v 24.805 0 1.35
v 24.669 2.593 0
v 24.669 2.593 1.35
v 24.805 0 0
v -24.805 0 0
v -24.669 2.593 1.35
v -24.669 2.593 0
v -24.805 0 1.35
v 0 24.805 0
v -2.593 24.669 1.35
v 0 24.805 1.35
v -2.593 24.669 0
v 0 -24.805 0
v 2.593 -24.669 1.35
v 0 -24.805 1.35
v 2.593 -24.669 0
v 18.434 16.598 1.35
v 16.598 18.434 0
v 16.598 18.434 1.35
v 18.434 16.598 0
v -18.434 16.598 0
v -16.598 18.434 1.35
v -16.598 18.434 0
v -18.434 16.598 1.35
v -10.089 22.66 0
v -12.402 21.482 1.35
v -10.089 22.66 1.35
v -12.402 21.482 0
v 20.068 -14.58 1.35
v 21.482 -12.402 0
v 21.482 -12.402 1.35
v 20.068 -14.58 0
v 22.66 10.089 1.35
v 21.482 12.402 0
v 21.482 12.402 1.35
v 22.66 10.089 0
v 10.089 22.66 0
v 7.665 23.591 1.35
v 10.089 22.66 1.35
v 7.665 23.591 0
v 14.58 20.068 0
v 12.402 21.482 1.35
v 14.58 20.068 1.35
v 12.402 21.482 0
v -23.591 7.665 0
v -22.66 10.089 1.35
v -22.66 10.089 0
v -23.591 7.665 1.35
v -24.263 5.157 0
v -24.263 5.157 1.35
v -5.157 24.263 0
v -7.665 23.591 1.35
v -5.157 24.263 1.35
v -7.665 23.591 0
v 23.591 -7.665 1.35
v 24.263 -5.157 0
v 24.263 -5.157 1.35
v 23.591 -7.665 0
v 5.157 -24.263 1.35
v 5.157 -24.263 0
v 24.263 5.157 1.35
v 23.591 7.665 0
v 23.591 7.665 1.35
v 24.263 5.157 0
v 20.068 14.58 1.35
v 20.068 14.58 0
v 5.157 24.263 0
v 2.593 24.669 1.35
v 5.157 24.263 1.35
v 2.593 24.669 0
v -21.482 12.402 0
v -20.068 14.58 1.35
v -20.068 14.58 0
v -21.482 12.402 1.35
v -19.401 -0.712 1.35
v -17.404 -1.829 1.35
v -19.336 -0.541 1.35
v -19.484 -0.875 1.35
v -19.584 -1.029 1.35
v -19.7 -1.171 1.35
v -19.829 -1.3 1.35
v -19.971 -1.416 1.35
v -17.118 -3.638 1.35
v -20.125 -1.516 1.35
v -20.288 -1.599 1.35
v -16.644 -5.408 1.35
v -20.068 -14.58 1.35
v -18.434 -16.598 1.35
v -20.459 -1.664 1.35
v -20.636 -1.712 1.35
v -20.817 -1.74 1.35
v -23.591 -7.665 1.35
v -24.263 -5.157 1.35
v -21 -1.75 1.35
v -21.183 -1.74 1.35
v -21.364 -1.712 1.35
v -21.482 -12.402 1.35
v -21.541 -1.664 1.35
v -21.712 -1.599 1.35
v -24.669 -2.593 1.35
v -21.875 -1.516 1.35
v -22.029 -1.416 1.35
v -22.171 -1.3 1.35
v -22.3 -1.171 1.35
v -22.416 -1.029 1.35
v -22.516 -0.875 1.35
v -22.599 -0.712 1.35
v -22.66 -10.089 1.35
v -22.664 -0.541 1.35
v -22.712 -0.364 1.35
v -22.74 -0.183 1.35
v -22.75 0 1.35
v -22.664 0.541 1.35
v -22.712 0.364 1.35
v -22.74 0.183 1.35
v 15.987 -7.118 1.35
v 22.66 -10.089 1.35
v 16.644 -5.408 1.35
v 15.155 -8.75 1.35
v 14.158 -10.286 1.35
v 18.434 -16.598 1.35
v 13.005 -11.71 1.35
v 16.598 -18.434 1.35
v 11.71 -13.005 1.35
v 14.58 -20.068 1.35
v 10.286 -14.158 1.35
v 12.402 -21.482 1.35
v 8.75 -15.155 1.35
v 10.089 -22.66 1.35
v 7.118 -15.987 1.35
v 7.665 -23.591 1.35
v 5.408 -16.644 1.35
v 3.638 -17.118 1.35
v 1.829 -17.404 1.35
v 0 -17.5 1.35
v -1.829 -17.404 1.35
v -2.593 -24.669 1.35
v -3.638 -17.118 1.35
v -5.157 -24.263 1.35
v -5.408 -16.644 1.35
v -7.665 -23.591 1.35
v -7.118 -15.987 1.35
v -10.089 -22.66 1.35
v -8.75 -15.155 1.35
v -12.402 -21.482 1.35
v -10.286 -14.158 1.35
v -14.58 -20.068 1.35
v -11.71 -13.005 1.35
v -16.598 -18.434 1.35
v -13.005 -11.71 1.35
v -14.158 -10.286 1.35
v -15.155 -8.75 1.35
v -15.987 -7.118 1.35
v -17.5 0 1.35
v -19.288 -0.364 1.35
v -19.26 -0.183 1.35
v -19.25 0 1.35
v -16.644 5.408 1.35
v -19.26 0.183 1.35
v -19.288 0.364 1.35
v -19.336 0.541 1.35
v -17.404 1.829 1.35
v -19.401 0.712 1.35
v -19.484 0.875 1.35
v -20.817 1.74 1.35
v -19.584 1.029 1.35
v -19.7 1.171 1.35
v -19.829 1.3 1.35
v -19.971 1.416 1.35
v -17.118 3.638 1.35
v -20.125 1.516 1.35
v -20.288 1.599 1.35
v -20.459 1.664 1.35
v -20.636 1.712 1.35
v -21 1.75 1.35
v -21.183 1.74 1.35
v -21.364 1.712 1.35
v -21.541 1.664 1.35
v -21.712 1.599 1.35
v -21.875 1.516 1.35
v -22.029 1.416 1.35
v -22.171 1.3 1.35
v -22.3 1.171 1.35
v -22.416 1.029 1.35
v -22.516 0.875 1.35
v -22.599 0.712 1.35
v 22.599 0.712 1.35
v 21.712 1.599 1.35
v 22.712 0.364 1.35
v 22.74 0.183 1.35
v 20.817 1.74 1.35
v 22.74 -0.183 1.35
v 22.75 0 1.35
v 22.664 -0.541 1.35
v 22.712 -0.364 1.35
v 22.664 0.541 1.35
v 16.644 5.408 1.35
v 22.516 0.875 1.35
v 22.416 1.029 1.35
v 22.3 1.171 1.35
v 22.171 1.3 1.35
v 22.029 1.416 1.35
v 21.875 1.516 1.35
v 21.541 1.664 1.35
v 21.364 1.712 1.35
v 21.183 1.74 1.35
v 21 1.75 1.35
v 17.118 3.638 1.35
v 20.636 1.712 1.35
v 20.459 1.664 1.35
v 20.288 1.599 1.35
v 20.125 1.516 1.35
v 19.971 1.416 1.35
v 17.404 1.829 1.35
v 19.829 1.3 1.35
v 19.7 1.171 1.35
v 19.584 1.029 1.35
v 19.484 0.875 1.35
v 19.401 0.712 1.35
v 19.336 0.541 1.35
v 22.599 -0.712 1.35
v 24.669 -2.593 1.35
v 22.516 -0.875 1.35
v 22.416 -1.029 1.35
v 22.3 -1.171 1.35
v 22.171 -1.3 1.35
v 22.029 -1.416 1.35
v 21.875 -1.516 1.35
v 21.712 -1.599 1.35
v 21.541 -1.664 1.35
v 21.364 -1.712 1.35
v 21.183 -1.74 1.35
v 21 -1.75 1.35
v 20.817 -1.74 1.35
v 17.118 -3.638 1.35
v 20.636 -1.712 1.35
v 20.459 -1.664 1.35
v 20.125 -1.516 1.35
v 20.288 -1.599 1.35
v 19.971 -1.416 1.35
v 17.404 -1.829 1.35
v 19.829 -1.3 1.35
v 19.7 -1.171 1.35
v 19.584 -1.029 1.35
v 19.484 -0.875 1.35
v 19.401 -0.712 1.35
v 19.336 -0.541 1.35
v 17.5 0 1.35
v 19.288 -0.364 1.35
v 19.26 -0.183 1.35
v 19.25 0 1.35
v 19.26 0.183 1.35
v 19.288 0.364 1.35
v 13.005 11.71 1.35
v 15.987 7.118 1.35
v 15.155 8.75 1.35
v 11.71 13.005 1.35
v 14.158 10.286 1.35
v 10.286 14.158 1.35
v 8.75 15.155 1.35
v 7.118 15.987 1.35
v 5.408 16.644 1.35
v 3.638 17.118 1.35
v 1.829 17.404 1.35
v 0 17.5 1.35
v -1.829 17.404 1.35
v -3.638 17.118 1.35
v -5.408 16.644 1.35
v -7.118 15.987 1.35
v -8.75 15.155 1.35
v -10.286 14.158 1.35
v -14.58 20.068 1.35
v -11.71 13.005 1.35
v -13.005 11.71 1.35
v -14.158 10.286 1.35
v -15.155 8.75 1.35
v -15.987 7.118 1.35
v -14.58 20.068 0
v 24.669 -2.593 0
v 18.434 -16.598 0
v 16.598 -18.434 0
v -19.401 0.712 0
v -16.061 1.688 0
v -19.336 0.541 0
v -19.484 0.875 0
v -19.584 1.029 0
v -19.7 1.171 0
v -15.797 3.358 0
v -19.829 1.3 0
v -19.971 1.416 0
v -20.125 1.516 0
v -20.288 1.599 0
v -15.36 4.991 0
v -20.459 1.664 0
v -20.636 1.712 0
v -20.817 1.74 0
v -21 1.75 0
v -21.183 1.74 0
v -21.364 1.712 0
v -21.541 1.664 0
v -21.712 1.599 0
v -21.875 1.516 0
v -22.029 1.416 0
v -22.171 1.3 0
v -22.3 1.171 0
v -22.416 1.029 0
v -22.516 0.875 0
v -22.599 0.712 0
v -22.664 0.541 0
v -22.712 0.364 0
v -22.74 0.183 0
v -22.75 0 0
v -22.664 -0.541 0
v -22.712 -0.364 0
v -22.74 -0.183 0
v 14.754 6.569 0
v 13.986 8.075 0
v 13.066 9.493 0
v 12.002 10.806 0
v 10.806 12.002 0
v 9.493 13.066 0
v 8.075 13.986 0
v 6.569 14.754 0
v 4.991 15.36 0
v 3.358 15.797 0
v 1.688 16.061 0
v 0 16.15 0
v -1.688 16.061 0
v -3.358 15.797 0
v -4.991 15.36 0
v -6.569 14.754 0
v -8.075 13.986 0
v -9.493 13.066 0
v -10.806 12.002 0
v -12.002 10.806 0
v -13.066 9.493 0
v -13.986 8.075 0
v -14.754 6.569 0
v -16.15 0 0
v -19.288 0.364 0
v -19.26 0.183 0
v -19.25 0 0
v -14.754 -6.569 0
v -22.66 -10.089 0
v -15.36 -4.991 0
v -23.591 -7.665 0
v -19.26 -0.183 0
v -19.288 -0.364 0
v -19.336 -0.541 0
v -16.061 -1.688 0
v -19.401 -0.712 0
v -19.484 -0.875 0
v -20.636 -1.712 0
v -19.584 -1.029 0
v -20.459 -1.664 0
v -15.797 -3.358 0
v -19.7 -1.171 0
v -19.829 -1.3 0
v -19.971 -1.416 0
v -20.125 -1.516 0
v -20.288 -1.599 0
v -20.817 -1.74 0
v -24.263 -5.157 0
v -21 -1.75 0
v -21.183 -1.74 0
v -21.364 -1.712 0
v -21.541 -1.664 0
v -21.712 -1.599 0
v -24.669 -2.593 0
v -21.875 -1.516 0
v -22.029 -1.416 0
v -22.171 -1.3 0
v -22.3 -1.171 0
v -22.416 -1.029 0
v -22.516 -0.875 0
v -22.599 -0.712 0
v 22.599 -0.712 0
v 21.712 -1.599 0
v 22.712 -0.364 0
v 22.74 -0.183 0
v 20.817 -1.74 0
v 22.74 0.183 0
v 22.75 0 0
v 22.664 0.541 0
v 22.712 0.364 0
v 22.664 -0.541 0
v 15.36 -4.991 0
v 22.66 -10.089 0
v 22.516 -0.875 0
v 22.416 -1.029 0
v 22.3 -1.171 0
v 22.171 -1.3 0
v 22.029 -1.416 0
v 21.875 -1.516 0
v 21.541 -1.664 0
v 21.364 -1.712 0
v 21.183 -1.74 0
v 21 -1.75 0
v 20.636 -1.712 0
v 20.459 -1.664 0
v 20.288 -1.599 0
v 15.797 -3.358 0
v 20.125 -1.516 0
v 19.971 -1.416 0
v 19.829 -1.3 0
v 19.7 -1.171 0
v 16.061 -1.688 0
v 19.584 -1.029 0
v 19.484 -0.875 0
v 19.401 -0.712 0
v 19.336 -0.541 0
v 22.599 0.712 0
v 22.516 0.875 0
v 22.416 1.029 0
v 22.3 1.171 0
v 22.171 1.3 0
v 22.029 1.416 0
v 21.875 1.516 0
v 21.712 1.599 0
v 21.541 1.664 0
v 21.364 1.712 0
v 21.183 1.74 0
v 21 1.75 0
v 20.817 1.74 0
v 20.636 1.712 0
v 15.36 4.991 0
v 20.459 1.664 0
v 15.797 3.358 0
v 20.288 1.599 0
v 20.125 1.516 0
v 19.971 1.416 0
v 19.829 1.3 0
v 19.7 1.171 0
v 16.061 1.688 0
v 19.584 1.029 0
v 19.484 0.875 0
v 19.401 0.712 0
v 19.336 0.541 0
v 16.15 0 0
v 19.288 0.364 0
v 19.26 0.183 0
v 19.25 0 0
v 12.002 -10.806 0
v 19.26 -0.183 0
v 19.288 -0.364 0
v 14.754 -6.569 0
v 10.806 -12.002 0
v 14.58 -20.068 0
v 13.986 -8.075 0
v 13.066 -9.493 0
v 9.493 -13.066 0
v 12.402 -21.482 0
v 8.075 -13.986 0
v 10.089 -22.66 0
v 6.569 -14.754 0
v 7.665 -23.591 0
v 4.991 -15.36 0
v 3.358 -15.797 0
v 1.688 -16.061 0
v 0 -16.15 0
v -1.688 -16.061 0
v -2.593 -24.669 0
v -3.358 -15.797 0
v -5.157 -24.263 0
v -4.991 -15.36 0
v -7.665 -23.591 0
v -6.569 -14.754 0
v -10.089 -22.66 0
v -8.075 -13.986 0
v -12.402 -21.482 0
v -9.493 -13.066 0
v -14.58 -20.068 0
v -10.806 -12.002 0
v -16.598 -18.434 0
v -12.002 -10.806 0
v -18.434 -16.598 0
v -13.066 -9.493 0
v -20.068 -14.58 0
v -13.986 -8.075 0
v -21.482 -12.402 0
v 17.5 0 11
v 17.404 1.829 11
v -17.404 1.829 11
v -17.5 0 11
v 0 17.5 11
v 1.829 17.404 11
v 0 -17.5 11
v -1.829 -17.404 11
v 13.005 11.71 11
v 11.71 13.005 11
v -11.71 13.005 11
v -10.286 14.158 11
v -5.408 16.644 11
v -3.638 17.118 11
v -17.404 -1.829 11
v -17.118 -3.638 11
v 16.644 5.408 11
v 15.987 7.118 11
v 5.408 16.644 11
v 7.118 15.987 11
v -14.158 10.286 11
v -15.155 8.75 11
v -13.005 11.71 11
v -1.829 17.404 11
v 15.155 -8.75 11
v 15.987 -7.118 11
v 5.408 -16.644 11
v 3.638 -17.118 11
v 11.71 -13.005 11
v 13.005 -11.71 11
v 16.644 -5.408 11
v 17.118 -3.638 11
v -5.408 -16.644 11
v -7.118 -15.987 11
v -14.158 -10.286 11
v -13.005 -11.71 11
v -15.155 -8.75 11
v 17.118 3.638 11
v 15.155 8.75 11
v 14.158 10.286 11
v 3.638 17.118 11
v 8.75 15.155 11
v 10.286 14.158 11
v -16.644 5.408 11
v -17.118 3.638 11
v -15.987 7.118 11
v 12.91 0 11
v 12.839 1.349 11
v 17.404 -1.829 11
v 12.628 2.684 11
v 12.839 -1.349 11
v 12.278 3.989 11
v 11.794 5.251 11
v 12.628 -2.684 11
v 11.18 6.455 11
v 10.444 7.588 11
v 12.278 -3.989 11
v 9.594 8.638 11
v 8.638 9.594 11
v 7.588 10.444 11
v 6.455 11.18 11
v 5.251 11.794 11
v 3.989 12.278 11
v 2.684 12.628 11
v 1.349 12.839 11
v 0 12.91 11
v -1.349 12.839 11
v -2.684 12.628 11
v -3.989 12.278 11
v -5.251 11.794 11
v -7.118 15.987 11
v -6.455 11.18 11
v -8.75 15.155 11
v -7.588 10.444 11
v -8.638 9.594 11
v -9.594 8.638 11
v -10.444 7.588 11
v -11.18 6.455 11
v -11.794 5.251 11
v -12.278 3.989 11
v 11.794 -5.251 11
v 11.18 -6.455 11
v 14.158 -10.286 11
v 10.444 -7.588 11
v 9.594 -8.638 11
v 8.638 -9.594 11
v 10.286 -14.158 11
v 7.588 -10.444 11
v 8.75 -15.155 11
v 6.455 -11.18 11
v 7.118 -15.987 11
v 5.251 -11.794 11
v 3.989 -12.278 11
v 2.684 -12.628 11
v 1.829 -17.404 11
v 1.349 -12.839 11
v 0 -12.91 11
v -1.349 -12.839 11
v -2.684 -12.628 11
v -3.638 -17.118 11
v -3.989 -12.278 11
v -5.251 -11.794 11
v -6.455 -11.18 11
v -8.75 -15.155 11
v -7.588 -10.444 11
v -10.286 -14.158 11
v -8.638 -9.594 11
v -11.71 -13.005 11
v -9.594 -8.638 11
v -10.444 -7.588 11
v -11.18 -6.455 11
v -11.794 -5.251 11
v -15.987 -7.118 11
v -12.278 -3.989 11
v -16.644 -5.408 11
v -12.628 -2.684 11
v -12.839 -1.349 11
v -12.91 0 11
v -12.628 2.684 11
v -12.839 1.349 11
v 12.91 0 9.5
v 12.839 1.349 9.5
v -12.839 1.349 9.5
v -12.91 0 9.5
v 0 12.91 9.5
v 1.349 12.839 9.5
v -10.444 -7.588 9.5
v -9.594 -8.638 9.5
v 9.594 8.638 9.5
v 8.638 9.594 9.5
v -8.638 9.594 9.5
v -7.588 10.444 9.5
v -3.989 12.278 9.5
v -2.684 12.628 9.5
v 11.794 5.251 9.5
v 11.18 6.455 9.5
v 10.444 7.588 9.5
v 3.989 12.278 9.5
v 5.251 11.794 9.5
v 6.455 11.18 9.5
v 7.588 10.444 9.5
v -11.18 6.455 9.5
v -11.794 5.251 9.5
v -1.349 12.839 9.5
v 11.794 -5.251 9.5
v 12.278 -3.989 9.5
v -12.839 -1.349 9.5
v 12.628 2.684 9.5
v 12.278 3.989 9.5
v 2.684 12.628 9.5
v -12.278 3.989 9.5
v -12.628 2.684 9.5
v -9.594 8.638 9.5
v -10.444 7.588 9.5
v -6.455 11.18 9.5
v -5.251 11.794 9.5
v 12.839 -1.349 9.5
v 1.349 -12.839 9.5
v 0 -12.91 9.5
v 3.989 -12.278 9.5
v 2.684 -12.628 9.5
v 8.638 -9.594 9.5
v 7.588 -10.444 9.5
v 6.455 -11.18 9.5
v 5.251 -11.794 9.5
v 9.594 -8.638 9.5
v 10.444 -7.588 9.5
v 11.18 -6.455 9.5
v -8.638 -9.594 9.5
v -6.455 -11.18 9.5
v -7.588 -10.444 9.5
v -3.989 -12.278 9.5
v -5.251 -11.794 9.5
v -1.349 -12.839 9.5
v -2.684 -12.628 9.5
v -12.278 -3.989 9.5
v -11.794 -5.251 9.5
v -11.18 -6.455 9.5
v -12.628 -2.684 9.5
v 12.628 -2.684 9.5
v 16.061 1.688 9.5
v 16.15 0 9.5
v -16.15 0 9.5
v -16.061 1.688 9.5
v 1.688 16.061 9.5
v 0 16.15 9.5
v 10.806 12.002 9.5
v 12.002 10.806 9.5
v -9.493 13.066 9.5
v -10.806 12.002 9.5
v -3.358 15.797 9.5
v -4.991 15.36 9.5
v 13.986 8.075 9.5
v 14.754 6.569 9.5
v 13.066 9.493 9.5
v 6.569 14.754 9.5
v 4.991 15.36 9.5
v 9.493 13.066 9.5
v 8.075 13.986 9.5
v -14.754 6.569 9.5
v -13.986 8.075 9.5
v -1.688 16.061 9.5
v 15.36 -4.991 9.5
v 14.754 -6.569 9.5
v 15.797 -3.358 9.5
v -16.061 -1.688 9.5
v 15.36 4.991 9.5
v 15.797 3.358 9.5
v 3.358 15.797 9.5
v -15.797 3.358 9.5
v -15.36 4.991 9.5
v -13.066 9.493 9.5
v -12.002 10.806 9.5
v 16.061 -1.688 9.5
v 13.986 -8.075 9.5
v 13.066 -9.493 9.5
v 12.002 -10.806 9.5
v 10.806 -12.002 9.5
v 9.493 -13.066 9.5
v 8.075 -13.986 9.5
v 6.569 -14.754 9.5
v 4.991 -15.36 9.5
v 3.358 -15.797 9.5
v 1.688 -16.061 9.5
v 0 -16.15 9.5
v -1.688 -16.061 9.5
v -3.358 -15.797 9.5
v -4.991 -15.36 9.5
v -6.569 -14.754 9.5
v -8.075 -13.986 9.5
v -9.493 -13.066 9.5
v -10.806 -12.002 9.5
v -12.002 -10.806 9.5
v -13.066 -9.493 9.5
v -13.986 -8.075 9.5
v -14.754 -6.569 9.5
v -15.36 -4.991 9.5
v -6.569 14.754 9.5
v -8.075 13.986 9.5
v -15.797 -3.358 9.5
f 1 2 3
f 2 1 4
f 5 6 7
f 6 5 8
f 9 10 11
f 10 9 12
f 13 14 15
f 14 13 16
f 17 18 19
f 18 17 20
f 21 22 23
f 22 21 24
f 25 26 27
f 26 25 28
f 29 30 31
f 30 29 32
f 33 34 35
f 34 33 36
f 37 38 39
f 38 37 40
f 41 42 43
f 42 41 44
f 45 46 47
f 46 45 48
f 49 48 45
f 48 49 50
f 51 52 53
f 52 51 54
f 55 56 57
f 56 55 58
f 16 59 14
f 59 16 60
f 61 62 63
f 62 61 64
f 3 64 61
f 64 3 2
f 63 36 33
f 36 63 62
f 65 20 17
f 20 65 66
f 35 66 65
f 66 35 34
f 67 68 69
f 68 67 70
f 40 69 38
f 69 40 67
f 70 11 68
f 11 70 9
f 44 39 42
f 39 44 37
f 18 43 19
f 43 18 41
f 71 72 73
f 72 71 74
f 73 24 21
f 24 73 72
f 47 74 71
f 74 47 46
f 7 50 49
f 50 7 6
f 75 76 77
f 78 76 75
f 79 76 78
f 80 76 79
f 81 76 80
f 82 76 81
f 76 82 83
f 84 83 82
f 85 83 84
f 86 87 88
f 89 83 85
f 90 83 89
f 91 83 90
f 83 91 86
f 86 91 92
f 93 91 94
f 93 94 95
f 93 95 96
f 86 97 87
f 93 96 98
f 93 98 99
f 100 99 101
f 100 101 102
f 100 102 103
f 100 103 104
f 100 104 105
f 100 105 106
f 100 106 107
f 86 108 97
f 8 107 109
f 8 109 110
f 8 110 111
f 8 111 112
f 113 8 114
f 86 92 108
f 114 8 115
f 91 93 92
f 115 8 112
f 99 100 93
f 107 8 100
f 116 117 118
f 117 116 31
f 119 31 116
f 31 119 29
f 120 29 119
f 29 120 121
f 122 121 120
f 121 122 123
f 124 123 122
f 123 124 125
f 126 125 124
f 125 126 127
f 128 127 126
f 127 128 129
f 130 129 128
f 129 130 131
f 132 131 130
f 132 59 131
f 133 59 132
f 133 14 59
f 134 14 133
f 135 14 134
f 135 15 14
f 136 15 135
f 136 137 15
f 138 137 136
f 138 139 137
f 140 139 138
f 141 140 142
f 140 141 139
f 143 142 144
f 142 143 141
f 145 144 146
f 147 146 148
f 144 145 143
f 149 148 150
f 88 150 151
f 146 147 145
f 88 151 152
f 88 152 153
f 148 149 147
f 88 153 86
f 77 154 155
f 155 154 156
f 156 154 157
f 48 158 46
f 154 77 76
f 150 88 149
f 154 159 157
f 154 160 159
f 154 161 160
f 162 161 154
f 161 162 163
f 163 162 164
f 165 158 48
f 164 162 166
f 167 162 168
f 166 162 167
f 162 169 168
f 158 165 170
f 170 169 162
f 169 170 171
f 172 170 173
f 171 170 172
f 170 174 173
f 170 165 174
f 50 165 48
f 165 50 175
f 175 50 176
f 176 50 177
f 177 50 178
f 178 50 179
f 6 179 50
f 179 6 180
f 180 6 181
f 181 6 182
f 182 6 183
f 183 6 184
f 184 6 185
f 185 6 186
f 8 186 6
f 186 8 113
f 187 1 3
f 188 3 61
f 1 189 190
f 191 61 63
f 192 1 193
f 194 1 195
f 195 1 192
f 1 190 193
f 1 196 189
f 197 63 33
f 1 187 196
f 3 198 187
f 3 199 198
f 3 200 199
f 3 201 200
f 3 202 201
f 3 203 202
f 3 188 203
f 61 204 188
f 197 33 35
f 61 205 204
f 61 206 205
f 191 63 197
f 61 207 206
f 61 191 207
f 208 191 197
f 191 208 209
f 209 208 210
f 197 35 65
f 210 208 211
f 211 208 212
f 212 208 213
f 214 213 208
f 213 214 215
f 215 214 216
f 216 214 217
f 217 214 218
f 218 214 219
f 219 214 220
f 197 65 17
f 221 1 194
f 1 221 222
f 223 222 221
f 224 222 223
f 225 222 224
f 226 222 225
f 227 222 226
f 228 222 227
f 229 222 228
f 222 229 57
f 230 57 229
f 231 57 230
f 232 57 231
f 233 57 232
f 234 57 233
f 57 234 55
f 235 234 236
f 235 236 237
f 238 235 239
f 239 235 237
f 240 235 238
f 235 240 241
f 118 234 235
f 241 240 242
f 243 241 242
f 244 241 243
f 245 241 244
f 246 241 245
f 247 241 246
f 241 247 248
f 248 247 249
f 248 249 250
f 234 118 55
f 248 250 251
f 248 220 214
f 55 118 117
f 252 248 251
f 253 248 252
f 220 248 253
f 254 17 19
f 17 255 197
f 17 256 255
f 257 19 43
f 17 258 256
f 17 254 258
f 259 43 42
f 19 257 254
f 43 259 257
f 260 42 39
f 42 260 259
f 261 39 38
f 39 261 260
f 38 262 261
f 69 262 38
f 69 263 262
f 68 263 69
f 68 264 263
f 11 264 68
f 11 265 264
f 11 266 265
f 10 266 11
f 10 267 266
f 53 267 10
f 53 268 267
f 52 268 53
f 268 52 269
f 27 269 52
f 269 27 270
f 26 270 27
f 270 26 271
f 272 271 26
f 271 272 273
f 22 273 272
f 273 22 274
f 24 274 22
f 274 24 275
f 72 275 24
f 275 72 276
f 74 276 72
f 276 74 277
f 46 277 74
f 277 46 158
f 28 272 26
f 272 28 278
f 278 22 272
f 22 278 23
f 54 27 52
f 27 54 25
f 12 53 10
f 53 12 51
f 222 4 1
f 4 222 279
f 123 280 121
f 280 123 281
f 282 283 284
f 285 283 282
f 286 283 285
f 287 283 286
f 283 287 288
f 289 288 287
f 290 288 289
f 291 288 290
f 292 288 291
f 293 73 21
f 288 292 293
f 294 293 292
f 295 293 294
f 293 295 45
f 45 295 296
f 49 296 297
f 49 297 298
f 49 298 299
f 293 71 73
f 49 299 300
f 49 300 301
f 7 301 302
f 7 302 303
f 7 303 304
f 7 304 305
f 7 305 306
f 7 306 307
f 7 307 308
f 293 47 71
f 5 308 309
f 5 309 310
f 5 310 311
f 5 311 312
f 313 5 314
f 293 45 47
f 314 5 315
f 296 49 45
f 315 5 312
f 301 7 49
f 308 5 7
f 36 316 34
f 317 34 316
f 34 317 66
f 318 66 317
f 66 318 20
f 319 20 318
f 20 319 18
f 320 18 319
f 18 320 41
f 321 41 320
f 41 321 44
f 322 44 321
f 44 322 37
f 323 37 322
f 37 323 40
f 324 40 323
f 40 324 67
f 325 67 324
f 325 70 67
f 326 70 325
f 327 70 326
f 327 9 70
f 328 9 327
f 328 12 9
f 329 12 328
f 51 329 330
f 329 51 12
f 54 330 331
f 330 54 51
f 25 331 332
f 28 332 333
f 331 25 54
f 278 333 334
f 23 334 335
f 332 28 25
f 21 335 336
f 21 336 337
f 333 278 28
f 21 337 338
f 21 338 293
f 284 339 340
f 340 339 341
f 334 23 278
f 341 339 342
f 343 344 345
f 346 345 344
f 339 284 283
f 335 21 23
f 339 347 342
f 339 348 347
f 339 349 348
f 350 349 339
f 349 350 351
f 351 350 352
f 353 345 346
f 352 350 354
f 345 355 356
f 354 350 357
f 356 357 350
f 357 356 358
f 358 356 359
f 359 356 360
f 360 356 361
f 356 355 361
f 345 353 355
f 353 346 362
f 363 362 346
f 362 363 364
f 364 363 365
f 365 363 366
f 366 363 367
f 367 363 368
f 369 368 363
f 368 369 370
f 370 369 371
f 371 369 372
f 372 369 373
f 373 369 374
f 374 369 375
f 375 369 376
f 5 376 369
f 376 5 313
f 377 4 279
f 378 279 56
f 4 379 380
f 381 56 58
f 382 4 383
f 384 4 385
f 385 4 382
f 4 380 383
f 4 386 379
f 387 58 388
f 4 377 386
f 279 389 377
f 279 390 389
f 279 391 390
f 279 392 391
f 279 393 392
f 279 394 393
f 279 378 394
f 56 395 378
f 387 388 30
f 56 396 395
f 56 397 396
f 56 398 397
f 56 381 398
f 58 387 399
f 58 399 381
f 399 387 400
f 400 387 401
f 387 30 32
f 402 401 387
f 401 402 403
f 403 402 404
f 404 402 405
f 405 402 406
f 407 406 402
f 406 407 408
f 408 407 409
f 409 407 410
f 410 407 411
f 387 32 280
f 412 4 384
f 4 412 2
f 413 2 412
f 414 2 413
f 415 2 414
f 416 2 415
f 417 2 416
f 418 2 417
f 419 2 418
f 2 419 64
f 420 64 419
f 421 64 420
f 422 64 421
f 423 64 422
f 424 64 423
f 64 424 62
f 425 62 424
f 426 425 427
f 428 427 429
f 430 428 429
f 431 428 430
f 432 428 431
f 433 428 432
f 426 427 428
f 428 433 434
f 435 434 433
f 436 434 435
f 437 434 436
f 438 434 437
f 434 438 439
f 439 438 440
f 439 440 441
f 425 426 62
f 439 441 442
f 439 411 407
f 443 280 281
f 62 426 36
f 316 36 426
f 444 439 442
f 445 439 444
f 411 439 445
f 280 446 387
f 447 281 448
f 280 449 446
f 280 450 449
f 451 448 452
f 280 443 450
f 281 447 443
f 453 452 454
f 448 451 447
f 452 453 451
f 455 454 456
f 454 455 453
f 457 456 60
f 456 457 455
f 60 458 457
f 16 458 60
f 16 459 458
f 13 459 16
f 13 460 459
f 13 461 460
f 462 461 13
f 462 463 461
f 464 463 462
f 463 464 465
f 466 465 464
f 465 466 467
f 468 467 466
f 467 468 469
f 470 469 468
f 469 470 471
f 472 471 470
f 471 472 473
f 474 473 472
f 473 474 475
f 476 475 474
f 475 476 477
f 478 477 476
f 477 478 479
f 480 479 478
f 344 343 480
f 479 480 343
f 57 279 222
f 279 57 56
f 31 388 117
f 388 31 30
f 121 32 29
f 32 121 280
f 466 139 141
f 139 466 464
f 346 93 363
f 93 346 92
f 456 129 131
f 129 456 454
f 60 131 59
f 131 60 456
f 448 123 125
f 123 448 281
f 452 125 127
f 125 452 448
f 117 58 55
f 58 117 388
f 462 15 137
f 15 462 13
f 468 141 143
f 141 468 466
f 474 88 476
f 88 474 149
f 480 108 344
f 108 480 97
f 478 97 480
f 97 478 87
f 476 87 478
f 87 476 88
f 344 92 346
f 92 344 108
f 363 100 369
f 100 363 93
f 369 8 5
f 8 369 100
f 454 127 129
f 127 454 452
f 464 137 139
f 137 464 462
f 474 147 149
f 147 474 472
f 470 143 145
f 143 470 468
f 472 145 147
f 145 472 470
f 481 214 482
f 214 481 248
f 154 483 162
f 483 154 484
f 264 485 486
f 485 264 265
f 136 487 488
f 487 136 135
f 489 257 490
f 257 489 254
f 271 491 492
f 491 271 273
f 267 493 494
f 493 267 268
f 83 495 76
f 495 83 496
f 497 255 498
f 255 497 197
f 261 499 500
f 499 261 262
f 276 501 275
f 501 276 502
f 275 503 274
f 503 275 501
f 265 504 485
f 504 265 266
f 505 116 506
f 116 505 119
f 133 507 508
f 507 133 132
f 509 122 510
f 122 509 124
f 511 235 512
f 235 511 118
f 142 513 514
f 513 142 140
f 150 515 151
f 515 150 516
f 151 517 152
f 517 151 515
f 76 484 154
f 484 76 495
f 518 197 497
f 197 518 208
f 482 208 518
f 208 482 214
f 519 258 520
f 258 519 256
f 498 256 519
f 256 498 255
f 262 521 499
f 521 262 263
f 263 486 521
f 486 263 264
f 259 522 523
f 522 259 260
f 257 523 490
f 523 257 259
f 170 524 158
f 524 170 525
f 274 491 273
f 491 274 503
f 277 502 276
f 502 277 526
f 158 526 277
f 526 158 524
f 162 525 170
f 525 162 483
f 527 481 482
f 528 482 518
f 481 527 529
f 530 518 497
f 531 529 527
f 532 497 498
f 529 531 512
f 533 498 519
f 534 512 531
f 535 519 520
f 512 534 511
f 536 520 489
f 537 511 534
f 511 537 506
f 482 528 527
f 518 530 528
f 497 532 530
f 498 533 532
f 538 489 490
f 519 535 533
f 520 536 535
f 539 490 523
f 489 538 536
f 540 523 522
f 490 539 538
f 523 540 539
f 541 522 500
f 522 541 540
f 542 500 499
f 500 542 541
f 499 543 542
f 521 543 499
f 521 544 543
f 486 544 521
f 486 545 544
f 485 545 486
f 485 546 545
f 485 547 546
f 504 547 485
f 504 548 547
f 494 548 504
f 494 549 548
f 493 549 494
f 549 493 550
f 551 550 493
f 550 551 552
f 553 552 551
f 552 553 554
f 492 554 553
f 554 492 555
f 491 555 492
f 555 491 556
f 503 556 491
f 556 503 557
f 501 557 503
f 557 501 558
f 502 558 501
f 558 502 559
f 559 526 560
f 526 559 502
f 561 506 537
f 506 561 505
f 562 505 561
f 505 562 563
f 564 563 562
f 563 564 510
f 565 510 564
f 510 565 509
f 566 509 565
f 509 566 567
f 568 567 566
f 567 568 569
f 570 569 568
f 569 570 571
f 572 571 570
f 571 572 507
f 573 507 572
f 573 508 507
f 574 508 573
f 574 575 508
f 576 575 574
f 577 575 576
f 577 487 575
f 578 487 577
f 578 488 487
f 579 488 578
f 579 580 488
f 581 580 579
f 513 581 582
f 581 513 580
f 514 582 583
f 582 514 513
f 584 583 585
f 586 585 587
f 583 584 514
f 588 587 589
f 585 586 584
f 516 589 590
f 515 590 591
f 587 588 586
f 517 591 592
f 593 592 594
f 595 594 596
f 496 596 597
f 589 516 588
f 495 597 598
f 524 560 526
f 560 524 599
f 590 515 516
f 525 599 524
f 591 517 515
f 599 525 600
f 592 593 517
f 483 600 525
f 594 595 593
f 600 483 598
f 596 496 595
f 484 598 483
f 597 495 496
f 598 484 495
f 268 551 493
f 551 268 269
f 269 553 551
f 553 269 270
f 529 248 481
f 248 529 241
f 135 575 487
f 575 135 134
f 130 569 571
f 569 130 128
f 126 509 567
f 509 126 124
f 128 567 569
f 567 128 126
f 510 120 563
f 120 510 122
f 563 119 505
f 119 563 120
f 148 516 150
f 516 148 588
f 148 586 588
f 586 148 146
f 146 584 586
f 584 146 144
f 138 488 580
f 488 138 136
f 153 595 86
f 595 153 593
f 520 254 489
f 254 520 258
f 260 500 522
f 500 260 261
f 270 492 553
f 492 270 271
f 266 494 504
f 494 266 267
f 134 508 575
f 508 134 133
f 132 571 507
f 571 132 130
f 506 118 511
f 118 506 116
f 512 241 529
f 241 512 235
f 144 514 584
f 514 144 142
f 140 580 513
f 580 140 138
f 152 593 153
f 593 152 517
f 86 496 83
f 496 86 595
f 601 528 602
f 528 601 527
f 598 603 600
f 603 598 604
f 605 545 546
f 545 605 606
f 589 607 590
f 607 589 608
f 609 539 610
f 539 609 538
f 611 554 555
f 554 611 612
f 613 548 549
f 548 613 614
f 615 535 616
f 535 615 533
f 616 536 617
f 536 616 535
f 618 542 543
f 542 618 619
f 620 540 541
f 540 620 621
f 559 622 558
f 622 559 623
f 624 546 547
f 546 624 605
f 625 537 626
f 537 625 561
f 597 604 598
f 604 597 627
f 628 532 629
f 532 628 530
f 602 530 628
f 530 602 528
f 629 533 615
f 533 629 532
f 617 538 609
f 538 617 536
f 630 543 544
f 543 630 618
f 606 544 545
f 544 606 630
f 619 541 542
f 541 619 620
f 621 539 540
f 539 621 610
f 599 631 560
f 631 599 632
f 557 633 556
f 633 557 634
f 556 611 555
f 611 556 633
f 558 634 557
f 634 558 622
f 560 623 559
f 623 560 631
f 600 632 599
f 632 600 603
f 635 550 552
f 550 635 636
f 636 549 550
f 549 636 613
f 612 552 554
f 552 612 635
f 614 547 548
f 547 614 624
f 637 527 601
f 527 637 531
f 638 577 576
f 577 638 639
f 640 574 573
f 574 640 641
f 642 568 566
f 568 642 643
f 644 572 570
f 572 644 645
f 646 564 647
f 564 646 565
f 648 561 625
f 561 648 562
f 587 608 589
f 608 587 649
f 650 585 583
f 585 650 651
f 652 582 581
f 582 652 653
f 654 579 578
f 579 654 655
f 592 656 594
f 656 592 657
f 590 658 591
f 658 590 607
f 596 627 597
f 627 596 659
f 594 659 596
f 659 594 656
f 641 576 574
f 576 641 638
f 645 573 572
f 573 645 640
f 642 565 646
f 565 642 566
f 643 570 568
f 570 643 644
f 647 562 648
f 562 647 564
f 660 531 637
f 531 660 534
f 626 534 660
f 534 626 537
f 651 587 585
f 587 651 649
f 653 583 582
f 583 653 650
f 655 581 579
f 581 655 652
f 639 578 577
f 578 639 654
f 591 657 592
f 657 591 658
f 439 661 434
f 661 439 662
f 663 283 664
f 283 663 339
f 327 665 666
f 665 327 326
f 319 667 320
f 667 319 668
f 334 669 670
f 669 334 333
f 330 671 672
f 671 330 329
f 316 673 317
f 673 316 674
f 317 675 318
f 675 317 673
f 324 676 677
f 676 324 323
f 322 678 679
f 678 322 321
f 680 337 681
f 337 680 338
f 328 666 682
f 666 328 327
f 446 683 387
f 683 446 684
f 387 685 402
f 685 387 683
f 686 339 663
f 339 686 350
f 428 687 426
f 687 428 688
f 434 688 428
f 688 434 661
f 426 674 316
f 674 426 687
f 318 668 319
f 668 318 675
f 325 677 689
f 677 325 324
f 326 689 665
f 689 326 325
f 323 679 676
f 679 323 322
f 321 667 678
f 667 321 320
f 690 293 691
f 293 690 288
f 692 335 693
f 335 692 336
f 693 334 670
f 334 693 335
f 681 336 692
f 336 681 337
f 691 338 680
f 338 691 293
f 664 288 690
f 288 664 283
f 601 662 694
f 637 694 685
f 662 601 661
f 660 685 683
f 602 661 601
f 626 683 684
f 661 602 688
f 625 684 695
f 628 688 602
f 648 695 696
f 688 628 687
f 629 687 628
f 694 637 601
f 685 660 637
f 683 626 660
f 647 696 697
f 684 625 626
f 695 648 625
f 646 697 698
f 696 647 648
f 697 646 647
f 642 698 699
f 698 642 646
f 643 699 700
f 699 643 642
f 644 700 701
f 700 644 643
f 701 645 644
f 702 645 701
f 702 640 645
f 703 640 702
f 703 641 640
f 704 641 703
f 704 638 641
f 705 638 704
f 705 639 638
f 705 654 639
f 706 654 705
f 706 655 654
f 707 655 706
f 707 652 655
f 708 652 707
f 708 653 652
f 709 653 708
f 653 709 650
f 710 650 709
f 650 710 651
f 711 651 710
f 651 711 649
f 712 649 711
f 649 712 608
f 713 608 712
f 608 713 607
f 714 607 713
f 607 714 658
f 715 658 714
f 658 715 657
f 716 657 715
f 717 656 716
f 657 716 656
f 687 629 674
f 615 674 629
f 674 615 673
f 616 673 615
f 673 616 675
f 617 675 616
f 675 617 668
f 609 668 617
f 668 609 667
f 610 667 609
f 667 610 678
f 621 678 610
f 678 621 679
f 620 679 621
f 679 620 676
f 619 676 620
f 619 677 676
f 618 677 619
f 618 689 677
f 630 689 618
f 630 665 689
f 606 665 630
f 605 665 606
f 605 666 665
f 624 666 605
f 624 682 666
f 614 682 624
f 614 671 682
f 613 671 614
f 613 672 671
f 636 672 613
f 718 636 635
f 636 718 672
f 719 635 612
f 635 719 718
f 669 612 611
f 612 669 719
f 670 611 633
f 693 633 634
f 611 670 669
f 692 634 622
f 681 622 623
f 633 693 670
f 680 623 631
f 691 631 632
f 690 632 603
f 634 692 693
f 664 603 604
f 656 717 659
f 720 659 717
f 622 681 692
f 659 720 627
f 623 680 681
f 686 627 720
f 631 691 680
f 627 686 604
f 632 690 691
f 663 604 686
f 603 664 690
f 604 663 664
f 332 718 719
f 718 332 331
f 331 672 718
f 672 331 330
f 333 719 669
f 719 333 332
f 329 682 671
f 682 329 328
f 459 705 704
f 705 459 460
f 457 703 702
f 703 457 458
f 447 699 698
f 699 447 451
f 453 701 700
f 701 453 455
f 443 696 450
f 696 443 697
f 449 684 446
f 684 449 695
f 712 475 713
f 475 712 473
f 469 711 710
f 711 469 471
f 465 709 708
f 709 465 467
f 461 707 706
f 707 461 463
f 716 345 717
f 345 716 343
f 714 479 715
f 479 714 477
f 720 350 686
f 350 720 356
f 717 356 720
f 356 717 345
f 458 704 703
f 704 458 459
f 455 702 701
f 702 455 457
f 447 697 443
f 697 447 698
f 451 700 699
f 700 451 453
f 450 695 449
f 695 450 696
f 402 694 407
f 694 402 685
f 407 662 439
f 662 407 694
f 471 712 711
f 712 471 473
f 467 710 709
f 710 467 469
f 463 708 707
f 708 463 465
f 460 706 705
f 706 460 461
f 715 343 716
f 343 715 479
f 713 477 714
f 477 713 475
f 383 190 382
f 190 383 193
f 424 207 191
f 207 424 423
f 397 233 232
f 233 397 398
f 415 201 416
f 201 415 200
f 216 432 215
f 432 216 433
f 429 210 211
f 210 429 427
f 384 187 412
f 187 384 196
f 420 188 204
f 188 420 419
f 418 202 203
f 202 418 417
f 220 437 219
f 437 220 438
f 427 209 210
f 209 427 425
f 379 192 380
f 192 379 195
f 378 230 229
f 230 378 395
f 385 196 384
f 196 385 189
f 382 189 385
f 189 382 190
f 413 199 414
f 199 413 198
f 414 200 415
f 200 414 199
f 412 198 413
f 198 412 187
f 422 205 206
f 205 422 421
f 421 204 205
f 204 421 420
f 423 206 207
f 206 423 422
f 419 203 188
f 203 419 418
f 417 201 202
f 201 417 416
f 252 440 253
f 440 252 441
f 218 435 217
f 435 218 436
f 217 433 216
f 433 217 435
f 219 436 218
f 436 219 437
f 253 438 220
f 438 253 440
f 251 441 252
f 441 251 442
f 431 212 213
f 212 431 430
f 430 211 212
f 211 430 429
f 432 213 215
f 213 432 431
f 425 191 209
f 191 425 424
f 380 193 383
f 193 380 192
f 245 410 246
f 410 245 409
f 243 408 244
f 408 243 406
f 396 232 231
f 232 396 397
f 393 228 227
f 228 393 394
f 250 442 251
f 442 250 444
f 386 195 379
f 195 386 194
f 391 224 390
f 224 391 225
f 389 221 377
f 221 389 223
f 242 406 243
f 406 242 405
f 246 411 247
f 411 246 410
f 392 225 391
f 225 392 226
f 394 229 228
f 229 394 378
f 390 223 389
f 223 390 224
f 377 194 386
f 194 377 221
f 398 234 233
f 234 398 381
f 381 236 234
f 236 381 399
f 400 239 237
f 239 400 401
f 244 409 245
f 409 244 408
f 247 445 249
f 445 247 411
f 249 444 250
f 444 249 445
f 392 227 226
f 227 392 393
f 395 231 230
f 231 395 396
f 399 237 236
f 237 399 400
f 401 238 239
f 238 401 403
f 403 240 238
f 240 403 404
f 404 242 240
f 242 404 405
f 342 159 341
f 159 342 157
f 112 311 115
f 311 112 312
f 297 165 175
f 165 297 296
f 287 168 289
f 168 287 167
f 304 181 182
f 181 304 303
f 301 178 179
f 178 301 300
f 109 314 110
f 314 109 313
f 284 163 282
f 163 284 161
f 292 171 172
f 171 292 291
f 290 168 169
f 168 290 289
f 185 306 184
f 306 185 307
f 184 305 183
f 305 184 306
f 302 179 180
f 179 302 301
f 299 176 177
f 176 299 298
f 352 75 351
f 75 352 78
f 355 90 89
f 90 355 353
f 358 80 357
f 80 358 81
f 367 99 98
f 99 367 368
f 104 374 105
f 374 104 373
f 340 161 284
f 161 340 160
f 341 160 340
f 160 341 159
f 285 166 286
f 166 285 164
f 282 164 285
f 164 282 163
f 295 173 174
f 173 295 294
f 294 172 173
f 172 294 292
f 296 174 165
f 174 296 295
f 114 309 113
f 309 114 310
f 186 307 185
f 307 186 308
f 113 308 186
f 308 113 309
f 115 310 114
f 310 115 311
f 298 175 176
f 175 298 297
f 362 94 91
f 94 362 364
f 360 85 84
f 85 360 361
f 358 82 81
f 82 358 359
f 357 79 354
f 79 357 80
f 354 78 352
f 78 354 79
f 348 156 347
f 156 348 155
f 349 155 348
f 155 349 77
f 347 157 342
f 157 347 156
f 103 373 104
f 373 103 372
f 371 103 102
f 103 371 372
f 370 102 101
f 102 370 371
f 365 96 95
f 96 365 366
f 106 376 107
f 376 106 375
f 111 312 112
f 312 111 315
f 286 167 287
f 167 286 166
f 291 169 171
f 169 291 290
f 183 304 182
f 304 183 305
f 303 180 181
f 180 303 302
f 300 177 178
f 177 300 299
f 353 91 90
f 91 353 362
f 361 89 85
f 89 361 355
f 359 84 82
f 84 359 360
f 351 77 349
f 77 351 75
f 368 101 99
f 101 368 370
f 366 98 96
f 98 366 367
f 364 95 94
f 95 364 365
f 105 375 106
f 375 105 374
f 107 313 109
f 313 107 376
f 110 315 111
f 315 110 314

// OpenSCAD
/****************************************************************
* title: 29mm Rowes retainer
* author: Boris du Reau
* version: 1.0
* date: 13/06/2026
* 
* Description: 
* This is model of the Rowes retainer from the hole http://www.rowesretainers.co.uk/ web site
*
* Howto use it:
* 
* click on "compile and render" 
* Note that all units ar metrics
*****************************************************************/


$fn=60;
module main() {
    cylinder (r=49.61/2, h=1.35);
    cylinder (r=35/2, h=11);
}

difference ()
{
    main();
    cylinder (r=25.82/2, h=11);
    cylinder (r=(35/2)-1.35, h=9.5);

    //trou
    translate([(42/2),0,0]) cylinder (r=3.5/2, h=1.5);
    translate([-(42/2),0,0])cylinder (r=3.5/2, h=1.5);
}
